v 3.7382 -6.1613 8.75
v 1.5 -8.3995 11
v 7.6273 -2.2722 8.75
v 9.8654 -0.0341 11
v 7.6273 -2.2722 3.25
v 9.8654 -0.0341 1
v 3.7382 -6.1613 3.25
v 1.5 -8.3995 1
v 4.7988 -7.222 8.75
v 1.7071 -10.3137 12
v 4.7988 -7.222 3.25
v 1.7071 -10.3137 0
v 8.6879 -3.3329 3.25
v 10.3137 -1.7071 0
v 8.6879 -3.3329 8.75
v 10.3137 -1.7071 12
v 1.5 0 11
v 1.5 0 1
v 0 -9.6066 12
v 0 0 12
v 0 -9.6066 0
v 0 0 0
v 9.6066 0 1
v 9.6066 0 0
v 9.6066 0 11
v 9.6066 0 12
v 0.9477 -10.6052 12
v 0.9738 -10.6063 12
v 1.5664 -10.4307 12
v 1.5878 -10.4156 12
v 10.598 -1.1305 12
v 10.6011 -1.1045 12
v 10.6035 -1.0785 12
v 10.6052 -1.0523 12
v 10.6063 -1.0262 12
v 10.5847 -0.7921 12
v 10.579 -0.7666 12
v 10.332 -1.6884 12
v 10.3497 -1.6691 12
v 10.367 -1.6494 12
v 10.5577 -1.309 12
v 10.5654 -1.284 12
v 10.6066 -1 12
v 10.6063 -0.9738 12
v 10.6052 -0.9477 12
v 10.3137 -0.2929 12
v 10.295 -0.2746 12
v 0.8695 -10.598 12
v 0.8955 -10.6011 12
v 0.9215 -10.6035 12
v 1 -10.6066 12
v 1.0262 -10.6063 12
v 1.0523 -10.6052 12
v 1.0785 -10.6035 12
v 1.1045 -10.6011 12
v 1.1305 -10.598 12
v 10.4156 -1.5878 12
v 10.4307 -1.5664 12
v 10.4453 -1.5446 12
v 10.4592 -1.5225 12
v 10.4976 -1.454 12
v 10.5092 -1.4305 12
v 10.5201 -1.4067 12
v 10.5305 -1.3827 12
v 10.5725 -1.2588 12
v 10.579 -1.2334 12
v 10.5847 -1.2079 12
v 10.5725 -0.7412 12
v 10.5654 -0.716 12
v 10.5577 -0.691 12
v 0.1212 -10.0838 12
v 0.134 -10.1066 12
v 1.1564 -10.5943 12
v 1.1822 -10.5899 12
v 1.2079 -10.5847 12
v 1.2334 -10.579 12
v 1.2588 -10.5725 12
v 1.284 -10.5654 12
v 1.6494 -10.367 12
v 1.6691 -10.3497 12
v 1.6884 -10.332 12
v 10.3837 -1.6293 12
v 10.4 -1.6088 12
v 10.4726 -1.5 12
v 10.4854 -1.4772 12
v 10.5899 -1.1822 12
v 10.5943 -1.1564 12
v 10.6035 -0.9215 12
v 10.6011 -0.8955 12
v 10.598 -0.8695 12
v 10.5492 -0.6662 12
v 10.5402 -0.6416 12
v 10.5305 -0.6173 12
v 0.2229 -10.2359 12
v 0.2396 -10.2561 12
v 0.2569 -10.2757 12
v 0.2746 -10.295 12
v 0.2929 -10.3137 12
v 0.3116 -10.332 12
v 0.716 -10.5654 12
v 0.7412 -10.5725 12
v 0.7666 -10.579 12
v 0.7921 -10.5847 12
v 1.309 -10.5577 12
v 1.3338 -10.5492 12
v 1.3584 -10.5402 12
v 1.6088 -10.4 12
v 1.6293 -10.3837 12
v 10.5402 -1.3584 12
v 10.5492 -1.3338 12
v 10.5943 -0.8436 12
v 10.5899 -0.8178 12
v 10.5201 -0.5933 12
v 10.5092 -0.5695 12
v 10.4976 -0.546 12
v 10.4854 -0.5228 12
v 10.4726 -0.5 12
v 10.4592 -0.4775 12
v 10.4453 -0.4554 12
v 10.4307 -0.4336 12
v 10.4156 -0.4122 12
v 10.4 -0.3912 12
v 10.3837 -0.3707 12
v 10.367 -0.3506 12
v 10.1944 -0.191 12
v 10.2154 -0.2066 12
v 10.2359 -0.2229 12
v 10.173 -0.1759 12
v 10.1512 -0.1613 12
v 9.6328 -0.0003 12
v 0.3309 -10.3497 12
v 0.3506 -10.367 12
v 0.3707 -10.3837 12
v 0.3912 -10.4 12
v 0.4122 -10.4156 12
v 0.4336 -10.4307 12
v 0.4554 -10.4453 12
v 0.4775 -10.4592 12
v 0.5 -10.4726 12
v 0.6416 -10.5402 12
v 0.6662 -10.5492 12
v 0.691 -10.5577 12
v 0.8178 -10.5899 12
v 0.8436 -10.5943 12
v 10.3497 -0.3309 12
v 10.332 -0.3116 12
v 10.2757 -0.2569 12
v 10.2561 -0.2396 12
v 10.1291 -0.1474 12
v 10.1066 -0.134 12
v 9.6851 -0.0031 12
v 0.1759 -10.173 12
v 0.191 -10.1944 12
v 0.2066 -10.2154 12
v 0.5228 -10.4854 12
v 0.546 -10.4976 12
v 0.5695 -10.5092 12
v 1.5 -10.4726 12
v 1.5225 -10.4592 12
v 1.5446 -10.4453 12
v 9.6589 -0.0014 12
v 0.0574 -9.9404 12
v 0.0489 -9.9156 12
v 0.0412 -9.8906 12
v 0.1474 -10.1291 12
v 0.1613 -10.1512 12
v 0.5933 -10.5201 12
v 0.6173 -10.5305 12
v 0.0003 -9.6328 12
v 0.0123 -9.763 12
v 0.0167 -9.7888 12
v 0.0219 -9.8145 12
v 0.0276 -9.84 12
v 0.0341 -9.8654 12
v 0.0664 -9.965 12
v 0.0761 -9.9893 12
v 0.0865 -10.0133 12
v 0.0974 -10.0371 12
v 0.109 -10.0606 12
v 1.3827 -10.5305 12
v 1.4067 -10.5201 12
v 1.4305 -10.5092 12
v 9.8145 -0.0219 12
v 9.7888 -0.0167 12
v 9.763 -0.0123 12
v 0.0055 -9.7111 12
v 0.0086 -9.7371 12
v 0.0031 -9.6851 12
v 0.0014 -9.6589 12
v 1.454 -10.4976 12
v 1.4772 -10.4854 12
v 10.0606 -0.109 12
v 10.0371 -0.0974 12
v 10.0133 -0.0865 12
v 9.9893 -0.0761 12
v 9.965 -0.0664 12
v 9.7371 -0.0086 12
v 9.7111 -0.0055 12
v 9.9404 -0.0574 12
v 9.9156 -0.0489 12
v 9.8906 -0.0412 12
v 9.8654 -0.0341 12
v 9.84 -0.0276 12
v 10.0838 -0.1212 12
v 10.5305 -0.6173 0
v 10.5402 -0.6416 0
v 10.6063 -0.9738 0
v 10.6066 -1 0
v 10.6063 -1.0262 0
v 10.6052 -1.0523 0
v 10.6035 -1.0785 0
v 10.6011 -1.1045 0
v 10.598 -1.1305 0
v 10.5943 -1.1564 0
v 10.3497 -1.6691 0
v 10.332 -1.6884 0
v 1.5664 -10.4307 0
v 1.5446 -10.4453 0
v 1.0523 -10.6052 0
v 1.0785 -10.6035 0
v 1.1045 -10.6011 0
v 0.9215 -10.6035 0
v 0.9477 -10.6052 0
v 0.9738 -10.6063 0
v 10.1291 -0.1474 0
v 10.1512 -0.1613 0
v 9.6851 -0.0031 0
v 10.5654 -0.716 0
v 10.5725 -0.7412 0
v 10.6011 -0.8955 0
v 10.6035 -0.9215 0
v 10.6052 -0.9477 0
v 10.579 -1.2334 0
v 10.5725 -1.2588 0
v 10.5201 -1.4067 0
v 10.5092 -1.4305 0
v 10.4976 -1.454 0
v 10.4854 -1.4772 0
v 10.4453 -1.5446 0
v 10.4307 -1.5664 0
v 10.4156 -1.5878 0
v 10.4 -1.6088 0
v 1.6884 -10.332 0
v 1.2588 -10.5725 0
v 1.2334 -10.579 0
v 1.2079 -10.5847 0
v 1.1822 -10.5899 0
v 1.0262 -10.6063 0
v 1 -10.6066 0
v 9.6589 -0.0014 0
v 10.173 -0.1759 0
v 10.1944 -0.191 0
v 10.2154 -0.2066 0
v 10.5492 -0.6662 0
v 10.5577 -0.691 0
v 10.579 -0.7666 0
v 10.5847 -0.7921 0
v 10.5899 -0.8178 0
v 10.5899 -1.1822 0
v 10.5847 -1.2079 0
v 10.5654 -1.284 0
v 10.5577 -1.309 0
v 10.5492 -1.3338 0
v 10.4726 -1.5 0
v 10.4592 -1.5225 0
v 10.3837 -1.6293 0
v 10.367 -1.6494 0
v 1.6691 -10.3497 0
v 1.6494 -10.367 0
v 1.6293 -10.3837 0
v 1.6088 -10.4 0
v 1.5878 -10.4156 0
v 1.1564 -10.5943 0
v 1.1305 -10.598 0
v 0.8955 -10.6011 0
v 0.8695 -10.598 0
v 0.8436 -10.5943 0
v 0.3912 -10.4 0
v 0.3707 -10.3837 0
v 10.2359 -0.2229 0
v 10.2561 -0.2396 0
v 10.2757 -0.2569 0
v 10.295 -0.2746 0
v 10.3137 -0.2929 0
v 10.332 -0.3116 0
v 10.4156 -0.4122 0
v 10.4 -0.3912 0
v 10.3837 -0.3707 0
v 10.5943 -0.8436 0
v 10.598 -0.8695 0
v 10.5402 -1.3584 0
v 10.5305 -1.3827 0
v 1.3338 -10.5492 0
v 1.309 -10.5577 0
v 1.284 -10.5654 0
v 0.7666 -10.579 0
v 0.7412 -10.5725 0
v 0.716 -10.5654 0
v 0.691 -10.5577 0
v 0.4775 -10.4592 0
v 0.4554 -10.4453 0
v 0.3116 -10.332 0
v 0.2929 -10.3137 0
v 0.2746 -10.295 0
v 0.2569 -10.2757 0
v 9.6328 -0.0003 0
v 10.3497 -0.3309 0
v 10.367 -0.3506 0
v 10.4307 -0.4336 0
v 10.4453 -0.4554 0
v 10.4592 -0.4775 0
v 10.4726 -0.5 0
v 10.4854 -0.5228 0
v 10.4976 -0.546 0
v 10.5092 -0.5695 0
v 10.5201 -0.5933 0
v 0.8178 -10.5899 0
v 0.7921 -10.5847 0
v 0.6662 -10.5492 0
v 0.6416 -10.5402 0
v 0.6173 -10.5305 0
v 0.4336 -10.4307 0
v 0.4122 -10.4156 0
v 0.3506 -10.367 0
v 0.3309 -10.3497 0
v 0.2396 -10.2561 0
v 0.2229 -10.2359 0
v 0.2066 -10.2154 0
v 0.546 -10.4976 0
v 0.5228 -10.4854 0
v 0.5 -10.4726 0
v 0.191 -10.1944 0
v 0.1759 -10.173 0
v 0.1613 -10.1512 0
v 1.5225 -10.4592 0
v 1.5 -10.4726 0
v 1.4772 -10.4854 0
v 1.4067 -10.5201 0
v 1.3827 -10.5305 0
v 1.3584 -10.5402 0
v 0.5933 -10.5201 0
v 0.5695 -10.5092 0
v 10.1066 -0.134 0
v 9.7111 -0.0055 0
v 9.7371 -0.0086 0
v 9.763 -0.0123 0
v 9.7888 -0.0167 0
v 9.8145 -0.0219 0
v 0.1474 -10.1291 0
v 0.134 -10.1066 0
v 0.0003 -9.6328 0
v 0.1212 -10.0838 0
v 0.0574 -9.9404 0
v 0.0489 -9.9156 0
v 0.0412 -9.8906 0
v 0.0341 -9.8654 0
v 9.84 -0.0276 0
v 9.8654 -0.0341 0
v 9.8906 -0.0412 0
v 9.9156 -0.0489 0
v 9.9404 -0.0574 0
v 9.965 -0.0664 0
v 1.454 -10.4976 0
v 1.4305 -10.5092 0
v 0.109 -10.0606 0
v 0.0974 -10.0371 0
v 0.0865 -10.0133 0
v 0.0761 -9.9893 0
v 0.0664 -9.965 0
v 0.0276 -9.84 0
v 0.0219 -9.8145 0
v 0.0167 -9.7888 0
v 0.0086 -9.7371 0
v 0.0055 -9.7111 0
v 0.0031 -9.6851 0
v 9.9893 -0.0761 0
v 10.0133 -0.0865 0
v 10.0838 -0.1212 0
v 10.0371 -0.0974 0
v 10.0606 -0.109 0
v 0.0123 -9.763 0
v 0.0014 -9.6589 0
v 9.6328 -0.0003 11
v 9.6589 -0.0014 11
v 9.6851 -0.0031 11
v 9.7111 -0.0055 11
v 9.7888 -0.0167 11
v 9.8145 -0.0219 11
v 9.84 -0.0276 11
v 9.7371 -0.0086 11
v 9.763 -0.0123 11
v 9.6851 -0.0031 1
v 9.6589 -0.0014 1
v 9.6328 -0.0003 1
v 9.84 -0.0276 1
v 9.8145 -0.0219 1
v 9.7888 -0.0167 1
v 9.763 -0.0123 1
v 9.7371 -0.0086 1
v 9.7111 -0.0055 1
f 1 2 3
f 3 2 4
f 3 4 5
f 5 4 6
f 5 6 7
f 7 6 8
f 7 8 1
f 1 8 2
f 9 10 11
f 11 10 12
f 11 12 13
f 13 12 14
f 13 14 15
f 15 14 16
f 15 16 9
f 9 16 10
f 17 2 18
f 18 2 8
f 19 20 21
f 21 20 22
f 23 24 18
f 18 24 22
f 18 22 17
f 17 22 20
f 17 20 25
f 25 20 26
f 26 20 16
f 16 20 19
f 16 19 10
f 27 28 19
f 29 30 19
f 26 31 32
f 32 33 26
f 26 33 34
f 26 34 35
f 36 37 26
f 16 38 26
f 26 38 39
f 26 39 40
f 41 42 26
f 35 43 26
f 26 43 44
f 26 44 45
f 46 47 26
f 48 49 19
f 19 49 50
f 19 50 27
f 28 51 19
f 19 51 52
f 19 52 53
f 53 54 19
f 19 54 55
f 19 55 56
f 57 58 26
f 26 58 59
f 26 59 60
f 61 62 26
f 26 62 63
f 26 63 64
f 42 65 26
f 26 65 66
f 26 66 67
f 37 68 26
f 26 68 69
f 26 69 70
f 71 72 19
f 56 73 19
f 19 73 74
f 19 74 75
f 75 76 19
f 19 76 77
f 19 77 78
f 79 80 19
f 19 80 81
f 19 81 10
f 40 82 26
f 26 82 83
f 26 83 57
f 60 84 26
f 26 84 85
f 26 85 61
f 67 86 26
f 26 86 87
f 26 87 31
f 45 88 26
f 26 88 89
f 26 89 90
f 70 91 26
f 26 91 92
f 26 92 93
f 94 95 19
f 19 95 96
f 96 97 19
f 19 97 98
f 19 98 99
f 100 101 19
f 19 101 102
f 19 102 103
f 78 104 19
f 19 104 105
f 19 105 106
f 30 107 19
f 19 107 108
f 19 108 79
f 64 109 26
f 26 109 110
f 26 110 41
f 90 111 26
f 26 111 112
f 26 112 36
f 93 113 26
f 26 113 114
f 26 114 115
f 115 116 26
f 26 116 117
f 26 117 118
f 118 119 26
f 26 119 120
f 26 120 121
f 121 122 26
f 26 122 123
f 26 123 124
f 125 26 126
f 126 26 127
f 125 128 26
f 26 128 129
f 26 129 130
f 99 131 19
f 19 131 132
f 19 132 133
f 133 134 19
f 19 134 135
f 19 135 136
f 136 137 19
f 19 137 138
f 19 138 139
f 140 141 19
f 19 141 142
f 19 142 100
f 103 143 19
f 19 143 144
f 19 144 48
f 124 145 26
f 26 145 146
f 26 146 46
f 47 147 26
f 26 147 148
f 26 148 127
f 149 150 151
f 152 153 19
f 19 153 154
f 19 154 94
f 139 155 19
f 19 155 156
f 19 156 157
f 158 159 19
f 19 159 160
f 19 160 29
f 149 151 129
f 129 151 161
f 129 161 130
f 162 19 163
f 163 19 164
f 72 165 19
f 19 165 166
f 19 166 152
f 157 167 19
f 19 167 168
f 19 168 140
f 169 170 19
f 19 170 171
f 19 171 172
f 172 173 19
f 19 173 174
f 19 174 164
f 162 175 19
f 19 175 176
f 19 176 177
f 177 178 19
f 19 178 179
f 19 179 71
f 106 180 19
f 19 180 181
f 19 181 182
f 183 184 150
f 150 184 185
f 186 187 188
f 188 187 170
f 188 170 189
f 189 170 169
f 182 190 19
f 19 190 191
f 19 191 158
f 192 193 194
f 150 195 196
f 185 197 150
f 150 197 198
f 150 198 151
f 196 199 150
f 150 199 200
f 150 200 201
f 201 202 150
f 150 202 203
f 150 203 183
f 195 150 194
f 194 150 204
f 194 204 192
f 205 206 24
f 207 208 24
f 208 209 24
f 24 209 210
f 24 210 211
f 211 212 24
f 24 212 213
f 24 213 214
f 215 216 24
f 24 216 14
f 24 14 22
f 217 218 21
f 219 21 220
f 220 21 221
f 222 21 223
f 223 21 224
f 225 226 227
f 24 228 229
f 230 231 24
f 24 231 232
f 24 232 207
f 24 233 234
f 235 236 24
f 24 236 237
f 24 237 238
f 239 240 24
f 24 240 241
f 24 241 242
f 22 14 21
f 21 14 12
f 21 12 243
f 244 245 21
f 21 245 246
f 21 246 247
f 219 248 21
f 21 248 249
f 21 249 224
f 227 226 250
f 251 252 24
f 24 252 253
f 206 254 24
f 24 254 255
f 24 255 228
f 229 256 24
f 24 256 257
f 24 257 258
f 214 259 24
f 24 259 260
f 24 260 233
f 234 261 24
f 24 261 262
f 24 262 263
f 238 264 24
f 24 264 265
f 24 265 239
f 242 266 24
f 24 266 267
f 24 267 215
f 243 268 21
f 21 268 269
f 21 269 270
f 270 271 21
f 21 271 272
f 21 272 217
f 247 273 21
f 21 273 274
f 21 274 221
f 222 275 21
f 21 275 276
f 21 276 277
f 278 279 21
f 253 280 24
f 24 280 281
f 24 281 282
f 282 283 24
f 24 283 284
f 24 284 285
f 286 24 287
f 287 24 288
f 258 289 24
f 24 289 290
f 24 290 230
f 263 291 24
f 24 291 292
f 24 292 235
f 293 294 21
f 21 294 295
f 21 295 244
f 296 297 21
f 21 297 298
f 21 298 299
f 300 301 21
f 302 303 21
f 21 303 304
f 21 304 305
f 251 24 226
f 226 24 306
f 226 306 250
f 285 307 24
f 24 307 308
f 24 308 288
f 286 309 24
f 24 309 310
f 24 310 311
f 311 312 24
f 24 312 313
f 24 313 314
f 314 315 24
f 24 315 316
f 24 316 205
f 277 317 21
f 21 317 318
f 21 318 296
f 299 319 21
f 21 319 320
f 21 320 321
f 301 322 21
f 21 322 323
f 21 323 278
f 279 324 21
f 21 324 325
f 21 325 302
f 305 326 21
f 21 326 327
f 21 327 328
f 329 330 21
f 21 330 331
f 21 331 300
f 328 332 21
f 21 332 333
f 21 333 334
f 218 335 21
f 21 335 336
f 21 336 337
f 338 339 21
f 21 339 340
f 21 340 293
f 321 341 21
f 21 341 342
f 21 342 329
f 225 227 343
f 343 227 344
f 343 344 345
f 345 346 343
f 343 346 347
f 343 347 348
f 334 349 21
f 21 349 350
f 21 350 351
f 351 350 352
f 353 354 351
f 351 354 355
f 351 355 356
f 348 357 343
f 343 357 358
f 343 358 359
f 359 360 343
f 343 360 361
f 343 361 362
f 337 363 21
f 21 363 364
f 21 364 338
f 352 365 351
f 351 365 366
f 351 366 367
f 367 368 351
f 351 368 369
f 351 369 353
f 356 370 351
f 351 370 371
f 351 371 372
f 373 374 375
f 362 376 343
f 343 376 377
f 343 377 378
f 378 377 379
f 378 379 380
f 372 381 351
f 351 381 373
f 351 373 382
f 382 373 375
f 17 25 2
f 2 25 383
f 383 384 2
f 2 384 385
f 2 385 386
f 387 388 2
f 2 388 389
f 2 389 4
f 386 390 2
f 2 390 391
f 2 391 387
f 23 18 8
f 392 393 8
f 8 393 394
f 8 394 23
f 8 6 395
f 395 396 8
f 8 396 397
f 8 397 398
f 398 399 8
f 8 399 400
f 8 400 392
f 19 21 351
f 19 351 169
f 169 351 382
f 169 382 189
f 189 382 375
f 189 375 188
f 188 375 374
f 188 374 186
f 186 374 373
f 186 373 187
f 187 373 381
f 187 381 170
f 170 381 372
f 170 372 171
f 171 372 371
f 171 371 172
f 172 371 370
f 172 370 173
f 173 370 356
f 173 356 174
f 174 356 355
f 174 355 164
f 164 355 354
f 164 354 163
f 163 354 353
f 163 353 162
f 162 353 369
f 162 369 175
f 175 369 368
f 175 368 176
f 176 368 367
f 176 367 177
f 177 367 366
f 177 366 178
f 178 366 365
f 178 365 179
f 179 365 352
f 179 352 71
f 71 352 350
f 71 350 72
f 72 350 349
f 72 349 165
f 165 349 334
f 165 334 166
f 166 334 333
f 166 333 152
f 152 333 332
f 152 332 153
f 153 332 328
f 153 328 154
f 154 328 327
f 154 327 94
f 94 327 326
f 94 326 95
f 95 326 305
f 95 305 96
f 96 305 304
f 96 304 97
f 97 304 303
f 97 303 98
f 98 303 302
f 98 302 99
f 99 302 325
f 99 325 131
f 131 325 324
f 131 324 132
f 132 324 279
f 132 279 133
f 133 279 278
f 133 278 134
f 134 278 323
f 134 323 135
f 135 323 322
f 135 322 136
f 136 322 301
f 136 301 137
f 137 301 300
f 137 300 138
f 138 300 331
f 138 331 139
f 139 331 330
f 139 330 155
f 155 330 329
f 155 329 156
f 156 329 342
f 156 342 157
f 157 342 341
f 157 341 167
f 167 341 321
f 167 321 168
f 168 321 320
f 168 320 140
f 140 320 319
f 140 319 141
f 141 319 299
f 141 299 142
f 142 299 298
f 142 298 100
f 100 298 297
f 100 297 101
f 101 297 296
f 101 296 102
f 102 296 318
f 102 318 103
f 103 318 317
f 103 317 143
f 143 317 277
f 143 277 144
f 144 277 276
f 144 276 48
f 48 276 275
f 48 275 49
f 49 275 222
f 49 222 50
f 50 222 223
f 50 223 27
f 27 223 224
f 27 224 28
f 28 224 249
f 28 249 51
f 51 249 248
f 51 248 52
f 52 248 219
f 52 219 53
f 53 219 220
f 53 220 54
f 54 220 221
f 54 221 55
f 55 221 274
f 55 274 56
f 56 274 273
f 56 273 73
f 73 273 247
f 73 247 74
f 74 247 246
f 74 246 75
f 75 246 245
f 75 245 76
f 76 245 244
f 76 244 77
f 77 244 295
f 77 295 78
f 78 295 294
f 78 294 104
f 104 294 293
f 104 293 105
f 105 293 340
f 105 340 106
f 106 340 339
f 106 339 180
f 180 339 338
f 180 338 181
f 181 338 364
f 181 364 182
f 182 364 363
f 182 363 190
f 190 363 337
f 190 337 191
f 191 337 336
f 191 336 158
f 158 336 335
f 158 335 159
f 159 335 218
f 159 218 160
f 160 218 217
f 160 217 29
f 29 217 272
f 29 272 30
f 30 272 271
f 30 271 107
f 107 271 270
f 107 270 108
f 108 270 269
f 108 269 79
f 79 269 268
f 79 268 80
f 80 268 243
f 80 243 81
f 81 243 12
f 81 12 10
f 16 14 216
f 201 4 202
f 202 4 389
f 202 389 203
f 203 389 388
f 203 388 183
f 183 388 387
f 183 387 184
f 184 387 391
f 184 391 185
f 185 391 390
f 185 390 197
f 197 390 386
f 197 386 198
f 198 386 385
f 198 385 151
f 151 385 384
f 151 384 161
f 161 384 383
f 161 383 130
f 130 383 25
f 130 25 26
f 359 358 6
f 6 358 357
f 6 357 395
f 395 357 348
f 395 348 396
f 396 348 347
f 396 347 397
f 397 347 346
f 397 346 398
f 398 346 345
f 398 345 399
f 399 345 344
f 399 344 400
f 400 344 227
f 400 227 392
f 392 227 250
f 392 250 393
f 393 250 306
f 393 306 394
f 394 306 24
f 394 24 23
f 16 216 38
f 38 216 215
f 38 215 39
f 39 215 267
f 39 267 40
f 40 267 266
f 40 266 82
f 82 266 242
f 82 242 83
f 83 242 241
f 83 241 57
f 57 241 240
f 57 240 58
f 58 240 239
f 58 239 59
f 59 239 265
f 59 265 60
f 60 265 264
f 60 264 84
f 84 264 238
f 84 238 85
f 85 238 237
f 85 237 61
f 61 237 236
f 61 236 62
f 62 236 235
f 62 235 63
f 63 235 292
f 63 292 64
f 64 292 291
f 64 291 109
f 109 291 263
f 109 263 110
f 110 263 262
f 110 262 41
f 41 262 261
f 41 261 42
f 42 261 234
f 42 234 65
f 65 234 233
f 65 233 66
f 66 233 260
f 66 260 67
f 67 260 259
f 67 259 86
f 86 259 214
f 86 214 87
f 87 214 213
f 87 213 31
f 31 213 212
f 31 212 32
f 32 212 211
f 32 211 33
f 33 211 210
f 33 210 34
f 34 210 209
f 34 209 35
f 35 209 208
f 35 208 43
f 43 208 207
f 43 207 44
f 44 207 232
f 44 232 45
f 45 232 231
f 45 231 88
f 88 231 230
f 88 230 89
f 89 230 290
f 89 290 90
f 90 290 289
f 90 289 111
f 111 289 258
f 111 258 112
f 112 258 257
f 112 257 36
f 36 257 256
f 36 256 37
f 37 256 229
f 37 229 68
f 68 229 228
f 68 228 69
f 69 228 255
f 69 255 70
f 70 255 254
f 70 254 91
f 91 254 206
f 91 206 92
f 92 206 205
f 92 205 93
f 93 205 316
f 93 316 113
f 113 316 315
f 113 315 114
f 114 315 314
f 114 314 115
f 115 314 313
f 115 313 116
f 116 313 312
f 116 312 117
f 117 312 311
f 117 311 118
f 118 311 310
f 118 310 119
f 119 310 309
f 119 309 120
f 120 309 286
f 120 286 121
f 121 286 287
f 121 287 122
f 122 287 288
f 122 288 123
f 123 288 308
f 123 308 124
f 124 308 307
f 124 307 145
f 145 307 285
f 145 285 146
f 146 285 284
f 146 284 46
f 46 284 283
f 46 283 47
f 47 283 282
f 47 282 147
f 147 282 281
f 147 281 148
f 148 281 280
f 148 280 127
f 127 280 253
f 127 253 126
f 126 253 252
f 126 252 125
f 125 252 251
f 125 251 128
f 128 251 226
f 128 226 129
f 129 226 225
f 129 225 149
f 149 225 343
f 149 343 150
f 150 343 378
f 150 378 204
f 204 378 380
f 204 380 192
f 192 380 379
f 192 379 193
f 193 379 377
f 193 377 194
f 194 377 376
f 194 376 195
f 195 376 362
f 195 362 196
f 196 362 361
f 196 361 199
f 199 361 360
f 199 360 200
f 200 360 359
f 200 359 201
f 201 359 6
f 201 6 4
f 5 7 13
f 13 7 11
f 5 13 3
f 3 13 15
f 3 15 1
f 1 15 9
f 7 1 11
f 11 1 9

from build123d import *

# Parameters (mm, degrees)
BOSS_EXTRUDE1_DEPTH = 12
BOSS_EXTRUDE2_DEPTH = 1
BOSS_EXTRUDE3_DEPTH = 1
FILLET1_R           = 1
SKETCH5_W           = 5.5
SKETCH5_H           = 5.5
CUT_EXTRUDE1_DEPTH  = 15.422205102


with BuildPart() as part:
    # Sketch1 → Boss-Extrude1 (new body)
    with BuildSketch(Plane.XY):
        Polygon((1.5, 0), (0, 0), (0, -12.02081528), (12.02081528, 0), (9.899494937, 0), (8.399494937, -1.5), (1.5, -8.399494937), (1.5, -1.5), align=None)
    extrude(amount=BOSS_EXTRUDE1_DEPTH)

    # Sketch2 → Boss-Extrude2 (add)
    with BuildSketch(Plane.XY.offset(12)):
        Polygon((0, 0), (12.02081528, 0), (0, -12.02081528), align=None)
    extrude(amount=-BOSS_EXTRUDE2_DEPTH)

    # Sketch3 → Boss-Extrude3 (add)
    with BuildSketch(Plane(origin=(0, 0, 0), x_dir=(-1, 0, 0), z_dir=(0, 0, -1))):
        Polygon((-12.02081528, 0), (0, 0), (0, -12.02081528), align=None)
    extrude(amount=-BOSS_EXTRUDE3_DEPTH)

    # Fillet1
    # the kernel refuses this fillet: 1 mm, written as the material it takes off along each edge
    with BuildSketch(Plane(origin=(0, -12.02081528, -6.035533906), x_dir=(0, 1, 0), z_dir=(0, 0, 1)), Plane(origin=(12.02081528, 0, 18.035533906), x_dir=(-1, 0, 0), z_dir=(0, 0, -1))) as fillet1_piece_1:
        with BuildLine():
            CenterArc((FILLET1_R * 2.41421356237, -FILLET1_R), FILLET1_R, 90, 135)
            Line((FILLET1_R * 1.70710678119, -FILLET1_R * 1.70710678119), (0, 0))
            Line((0, 0), (FILLET1_R * 2.41421356237, 0))
        make_face()
    extrude(amount=24.071067812, mode=Mode.SUBTRACT)

    # Sketch5 → Cut-Extrude1 (cut, through all)
    with BuildSketch(Plane(origin=(4.949747468, -4.949747468, 0), x_dir=(0, 0, 1), z_dir=(-0.7071067811865476, 0.7071067811865475, 0))):
        with Locations((6, 1.036566092)):
            Rectangle(SKETCH5_W, SKETCH5_H)
    extrude(amount=-CUT_EXTRUDE1_DEPTH, mode=Mode.SUBTRACT)


solid = part.part
